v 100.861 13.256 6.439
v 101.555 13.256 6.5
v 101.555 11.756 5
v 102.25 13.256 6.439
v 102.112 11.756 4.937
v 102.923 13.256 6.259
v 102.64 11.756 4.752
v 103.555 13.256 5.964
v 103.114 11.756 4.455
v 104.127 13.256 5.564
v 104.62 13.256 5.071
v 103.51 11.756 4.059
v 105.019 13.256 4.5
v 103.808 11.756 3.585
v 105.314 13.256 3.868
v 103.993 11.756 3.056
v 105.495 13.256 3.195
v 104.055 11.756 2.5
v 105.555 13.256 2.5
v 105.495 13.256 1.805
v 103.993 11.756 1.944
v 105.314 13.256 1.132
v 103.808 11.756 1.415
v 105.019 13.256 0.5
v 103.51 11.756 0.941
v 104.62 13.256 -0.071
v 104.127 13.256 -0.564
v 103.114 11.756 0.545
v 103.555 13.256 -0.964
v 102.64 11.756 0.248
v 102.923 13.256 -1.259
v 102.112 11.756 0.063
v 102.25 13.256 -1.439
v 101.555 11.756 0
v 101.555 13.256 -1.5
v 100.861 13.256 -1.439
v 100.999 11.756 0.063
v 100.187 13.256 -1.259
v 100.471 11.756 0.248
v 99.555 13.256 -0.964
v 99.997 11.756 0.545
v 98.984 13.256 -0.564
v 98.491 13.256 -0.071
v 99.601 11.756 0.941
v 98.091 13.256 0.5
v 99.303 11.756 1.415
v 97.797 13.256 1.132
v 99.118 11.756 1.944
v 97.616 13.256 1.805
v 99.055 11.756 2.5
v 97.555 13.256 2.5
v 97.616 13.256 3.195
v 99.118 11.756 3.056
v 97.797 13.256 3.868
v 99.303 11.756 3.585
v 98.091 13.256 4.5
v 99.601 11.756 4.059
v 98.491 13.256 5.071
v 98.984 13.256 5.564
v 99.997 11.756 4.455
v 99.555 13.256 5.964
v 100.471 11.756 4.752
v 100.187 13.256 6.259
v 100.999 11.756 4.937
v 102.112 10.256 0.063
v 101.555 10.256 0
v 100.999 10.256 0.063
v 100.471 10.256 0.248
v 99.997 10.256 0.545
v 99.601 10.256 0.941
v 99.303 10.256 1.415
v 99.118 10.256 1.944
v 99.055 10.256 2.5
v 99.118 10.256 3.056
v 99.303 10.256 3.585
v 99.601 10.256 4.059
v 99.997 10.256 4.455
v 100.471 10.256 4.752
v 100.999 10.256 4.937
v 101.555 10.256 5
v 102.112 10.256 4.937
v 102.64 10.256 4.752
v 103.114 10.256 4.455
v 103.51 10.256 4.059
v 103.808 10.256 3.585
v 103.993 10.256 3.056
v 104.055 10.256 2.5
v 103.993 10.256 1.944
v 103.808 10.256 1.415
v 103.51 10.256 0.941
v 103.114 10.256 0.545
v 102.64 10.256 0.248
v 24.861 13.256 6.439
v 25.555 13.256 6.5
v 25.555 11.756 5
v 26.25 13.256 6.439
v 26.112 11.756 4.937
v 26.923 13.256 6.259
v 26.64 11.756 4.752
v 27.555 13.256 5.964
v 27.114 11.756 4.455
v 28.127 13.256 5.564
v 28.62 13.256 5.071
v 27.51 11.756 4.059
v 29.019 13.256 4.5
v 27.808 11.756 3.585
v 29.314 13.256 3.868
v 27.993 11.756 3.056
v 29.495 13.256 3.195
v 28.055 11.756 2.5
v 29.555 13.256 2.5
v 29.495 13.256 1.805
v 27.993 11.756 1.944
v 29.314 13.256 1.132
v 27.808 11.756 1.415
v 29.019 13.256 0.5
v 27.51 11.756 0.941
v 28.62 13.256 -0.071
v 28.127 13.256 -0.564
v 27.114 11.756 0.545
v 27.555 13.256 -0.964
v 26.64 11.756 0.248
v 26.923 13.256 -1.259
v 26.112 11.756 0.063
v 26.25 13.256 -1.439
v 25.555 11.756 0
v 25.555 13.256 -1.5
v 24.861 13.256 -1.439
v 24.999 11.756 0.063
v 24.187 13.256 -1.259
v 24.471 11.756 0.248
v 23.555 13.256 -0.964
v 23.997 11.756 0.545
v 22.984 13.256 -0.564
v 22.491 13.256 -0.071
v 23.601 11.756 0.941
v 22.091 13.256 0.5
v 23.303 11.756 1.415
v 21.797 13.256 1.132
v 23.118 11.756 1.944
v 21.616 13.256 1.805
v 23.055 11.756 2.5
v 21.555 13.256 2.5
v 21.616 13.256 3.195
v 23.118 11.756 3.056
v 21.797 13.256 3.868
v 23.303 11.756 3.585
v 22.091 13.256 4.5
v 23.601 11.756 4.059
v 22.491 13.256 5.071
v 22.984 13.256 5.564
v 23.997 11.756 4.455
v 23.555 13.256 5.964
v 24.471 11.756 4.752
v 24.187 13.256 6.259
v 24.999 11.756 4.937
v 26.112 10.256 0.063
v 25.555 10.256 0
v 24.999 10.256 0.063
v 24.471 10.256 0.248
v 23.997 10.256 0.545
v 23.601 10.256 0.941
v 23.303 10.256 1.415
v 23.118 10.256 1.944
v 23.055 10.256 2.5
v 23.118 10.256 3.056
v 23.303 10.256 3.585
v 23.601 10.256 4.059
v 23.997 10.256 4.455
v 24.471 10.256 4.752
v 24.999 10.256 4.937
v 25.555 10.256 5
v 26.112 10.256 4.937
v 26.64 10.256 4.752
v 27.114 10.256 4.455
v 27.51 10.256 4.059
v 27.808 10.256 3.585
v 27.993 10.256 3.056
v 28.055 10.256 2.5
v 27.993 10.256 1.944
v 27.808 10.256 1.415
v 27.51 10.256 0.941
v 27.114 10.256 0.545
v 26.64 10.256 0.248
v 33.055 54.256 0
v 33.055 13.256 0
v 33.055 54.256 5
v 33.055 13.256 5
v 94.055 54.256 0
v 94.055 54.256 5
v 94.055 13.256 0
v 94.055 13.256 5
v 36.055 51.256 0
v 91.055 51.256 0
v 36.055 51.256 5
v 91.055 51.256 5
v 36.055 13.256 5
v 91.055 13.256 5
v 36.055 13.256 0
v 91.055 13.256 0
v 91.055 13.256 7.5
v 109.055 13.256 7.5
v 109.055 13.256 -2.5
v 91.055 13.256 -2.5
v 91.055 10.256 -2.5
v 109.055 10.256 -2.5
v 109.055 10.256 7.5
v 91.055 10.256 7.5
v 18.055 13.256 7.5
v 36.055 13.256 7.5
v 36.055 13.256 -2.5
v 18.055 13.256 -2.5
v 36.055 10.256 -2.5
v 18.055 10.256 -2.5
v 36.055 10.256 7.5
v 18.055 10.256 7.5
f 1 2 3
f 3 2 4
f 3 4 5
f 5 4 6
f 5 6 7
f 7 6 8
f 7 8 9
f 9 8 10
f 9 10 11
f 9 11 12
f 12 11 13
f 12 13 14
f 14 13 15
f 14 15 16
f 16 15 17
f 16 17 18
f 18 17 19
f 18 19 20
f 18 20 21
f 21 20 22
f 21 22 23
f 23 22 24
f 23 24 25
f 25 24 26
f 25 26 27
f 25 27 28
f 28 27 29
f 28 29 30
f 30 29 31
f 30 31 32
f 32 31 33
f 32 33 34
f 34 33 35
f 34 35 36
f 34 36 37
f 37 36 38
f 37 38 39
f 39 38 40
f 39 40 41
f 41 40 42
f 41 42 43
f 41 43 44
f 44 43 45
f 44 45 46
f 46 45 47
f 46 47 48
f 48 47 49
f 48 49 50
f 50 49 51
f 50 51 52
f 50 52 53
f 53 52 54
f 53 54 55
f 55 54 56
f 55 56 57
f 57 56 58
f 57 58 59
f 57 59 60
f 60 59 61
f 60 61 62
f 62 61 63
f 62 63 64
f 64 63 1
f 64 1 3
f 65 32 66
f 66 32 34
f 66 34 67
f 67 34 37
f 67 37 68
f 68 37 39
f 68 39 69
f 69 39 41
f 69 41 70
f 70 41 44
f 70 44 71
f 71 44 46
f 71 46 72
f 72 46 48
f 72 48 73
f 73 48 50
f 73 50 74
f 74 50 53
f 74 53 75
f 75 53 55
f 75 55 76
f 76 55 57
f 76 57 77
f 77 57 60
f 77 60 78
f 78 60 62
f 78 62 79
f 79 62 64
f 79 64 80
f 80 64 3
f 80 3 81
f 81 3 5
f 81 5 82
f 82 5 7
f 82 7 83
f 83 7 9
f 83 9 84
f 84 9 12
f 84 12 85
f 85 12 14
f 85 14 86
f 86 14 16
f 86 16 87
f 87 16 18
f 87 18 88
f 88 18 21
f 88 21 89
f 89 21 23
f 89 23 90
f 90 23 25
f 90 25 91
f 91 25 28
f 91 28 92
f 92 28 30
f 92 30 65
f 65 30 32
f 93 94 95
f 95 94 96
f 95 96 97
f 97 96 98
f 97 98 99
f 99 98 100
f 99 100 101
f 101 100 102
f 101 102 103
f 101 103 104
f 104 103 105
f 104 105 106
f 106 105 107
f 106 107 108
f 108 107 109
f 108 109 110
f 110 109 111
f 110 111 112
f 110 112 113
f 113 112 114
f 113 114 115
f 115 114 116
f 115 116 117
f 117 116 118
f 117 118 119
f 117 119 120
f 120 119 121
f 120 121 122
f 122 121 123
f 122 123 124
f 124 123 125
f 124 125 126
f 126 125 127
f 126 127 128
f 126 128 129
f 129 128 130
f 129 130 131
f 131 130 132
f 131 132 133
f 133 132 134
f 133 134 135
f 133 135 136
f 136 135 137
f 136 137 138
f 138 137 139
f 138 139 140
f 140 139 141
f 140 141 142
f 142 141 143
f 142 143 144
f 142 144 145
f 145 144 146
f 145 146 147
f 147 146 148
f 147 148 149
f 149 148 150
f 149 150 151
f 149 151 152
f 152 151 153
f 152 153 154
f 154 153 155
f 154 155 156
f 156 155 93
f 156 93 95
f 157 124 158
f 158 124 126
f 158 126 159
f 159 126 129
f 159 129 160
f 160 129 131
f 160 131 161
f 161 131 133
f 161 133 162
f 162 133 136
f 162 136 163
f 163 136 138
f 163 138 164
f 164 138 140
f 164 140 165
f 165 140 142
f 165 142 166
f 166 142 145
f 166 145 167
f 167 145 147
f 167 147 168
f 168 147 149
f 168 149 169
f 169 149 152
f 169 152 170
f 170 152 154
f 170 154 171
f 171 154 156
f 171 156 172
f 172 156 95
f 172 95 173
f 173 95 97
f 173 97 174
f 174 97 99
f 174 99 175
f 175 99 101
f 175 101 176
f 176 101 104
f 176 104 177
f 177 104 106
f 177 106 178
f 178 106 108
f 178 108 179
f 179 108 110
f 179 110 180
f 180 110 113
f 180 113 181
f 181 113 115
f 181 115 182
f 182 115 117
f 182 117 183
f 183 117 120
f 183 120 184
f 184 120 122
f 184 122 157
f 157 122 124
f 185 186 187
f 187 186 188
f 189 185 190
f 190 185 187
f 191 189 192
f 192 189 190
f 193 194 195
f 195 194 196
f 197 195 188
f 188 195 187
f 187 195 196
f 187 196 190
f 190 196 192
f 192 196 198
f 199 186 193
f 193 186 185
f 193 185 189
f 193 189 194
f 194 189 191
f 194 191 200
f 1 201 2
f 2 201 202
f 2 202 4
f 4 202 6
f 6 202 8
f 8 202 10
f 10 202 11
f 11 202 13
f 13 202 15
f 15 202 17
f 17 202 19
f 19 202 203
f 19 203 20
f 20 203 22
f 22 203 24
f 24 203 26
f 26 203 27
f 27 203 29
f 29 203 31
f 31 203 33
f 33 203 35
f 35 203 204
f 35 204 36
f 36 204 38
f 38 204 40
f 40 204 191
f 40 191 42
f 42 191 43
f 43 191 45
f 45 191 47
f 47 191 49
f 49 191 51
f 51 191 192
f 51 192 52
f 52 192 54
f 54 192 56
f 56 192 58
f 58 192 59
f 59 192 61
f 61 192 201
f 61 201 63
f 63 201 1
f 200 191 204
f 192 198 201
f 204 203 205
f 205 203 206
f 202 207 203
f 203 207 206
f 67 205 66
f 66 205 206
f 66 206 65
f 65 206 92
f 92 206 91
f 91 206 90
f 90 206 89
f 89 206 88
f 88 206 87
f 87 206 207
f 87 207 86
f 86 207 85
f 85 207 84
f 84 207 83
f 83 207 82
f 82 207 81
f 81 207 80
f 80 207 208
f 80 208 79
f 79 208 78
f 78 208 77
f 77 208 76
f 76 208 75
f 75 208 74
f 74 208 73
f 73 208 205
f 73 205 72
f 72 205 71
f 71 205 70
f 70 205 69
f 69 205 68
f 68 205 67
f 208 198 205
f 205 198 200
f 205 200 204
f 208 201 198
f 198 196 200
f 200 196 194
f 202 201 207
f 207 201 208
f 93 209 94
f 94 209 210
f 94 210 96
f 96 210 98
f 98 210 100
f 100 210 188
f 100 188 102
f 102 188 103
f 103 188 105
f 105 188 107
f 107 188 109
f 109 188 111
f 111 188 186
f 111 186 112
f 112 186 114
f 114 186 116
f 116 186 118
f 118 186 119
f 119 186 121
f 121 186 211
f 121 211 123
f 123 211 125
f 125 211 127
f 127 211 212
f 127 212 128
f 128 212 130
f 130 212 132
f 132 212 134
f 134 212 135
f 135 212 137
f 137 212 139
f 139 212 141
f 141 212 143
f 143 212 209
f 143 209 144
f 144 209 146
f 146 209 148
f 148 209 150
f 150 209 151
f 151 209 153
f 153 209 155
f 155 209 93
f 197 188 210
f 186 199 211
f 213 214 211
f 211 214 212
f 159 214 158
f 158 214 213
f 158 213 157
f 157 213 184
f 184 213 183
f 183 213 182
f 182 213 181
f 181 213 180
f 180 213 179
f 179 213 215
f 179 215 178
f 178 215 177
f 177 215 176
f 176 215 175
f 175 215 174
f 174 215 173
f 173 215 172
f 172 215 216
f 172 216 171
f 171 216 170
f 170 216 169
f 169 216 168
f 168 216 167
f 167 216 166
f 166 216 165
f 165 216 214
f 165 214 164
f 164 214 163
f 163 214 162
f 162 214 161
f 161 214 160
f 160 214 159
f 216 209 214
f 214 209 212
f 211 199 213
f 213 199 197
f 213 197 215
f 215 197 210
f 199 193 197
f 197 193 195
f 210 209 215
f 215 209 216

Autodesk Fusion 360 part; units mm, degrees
sketch "Sketch1" plane through (0, 0, 0) normal (0, 0, 1) x (1, 0, 0)
  line L0 (36.0554, 51.2556) -> (91.0554, 51.2556)
  line L1 (91.0554, 51.2556) -> (91.0554, 10.2556)
  line L2 (36.0554, 10.2556) -> (36.0554, 51.2556)
  line L3 (33.0554, 13.2556) -> (33.0554, 54.2556)
  line L4 (33.0554, 54.2556) -> (94.0554, 54.2556)
  line L5 (36.0554, 10.2556) -> (18.0554, 10.2556)
  line L6 (18.0554, 10.2556) -> (18.0554, 13.2556)
  line L7 (18.0554, 13.2556) -> (33.0554, 13.2556)
  line L8 (91.0554, 10.2556) -> (109.0554, 10.2556)
  line L9 (109.0554, 10.2556) -> (109.0554, 13.2556)
  line L10 (109.0554, 13.2556) -> (94.0554, 13.2556)
  line L11 (94.0554, 54.2556) -> (94.0554, 13.2556)
  line L12 (33.0554, 13.2556) -> (36.0554, 13.2556)
  line L13 (94.0554, 13.2556) -> (91.0554, 13.2556)
  dimension "d1" = 55
  dimension "d2" = 41
  dimension "d4" = 18
  dimension "d5" = 3
  dimension "d6" = 18
  dimension "d7" = 3
extrude "Extrude3" add sketch "Sketch1" along normal blind 7.5 contours L2 L5 L6 L7 L12 | L1 L8 L9 L10 L13 makes body 1 at (30.0554, 10.2556, 2.5) makes body 2 at (103.0554, 13.2556, 2.5)
extrude "Extrude2" add sketch "Sketch1" along normal blind 5 separate body contours L0 L1 L2 L3 L4 L11 L12 L13 makes body 3
extrude "Extrude4" add sketch "Sketch1" against normal blind 2.5 contours L2 L5 L6 L7 L12 | L1 L8 L9 L10 L13 bodies 1 2 3
hole "Hole1" at (25.5554, 13.2556, 2.5) direction (0, -1, 0) diameter 5 depth 10 tip angle 118 countersink diameter 8 countersink angle 90 bodies 1
ref_plane "WorkPlane1" through (63.5554, 33.7556, 2.5) normal (-1, 0, 0) x (0, -1, 0)
mirror "Mirror1" about plane through (63.5554, 33.7556, 2.5) normal (-1, 0, 0) of "Hole1"
